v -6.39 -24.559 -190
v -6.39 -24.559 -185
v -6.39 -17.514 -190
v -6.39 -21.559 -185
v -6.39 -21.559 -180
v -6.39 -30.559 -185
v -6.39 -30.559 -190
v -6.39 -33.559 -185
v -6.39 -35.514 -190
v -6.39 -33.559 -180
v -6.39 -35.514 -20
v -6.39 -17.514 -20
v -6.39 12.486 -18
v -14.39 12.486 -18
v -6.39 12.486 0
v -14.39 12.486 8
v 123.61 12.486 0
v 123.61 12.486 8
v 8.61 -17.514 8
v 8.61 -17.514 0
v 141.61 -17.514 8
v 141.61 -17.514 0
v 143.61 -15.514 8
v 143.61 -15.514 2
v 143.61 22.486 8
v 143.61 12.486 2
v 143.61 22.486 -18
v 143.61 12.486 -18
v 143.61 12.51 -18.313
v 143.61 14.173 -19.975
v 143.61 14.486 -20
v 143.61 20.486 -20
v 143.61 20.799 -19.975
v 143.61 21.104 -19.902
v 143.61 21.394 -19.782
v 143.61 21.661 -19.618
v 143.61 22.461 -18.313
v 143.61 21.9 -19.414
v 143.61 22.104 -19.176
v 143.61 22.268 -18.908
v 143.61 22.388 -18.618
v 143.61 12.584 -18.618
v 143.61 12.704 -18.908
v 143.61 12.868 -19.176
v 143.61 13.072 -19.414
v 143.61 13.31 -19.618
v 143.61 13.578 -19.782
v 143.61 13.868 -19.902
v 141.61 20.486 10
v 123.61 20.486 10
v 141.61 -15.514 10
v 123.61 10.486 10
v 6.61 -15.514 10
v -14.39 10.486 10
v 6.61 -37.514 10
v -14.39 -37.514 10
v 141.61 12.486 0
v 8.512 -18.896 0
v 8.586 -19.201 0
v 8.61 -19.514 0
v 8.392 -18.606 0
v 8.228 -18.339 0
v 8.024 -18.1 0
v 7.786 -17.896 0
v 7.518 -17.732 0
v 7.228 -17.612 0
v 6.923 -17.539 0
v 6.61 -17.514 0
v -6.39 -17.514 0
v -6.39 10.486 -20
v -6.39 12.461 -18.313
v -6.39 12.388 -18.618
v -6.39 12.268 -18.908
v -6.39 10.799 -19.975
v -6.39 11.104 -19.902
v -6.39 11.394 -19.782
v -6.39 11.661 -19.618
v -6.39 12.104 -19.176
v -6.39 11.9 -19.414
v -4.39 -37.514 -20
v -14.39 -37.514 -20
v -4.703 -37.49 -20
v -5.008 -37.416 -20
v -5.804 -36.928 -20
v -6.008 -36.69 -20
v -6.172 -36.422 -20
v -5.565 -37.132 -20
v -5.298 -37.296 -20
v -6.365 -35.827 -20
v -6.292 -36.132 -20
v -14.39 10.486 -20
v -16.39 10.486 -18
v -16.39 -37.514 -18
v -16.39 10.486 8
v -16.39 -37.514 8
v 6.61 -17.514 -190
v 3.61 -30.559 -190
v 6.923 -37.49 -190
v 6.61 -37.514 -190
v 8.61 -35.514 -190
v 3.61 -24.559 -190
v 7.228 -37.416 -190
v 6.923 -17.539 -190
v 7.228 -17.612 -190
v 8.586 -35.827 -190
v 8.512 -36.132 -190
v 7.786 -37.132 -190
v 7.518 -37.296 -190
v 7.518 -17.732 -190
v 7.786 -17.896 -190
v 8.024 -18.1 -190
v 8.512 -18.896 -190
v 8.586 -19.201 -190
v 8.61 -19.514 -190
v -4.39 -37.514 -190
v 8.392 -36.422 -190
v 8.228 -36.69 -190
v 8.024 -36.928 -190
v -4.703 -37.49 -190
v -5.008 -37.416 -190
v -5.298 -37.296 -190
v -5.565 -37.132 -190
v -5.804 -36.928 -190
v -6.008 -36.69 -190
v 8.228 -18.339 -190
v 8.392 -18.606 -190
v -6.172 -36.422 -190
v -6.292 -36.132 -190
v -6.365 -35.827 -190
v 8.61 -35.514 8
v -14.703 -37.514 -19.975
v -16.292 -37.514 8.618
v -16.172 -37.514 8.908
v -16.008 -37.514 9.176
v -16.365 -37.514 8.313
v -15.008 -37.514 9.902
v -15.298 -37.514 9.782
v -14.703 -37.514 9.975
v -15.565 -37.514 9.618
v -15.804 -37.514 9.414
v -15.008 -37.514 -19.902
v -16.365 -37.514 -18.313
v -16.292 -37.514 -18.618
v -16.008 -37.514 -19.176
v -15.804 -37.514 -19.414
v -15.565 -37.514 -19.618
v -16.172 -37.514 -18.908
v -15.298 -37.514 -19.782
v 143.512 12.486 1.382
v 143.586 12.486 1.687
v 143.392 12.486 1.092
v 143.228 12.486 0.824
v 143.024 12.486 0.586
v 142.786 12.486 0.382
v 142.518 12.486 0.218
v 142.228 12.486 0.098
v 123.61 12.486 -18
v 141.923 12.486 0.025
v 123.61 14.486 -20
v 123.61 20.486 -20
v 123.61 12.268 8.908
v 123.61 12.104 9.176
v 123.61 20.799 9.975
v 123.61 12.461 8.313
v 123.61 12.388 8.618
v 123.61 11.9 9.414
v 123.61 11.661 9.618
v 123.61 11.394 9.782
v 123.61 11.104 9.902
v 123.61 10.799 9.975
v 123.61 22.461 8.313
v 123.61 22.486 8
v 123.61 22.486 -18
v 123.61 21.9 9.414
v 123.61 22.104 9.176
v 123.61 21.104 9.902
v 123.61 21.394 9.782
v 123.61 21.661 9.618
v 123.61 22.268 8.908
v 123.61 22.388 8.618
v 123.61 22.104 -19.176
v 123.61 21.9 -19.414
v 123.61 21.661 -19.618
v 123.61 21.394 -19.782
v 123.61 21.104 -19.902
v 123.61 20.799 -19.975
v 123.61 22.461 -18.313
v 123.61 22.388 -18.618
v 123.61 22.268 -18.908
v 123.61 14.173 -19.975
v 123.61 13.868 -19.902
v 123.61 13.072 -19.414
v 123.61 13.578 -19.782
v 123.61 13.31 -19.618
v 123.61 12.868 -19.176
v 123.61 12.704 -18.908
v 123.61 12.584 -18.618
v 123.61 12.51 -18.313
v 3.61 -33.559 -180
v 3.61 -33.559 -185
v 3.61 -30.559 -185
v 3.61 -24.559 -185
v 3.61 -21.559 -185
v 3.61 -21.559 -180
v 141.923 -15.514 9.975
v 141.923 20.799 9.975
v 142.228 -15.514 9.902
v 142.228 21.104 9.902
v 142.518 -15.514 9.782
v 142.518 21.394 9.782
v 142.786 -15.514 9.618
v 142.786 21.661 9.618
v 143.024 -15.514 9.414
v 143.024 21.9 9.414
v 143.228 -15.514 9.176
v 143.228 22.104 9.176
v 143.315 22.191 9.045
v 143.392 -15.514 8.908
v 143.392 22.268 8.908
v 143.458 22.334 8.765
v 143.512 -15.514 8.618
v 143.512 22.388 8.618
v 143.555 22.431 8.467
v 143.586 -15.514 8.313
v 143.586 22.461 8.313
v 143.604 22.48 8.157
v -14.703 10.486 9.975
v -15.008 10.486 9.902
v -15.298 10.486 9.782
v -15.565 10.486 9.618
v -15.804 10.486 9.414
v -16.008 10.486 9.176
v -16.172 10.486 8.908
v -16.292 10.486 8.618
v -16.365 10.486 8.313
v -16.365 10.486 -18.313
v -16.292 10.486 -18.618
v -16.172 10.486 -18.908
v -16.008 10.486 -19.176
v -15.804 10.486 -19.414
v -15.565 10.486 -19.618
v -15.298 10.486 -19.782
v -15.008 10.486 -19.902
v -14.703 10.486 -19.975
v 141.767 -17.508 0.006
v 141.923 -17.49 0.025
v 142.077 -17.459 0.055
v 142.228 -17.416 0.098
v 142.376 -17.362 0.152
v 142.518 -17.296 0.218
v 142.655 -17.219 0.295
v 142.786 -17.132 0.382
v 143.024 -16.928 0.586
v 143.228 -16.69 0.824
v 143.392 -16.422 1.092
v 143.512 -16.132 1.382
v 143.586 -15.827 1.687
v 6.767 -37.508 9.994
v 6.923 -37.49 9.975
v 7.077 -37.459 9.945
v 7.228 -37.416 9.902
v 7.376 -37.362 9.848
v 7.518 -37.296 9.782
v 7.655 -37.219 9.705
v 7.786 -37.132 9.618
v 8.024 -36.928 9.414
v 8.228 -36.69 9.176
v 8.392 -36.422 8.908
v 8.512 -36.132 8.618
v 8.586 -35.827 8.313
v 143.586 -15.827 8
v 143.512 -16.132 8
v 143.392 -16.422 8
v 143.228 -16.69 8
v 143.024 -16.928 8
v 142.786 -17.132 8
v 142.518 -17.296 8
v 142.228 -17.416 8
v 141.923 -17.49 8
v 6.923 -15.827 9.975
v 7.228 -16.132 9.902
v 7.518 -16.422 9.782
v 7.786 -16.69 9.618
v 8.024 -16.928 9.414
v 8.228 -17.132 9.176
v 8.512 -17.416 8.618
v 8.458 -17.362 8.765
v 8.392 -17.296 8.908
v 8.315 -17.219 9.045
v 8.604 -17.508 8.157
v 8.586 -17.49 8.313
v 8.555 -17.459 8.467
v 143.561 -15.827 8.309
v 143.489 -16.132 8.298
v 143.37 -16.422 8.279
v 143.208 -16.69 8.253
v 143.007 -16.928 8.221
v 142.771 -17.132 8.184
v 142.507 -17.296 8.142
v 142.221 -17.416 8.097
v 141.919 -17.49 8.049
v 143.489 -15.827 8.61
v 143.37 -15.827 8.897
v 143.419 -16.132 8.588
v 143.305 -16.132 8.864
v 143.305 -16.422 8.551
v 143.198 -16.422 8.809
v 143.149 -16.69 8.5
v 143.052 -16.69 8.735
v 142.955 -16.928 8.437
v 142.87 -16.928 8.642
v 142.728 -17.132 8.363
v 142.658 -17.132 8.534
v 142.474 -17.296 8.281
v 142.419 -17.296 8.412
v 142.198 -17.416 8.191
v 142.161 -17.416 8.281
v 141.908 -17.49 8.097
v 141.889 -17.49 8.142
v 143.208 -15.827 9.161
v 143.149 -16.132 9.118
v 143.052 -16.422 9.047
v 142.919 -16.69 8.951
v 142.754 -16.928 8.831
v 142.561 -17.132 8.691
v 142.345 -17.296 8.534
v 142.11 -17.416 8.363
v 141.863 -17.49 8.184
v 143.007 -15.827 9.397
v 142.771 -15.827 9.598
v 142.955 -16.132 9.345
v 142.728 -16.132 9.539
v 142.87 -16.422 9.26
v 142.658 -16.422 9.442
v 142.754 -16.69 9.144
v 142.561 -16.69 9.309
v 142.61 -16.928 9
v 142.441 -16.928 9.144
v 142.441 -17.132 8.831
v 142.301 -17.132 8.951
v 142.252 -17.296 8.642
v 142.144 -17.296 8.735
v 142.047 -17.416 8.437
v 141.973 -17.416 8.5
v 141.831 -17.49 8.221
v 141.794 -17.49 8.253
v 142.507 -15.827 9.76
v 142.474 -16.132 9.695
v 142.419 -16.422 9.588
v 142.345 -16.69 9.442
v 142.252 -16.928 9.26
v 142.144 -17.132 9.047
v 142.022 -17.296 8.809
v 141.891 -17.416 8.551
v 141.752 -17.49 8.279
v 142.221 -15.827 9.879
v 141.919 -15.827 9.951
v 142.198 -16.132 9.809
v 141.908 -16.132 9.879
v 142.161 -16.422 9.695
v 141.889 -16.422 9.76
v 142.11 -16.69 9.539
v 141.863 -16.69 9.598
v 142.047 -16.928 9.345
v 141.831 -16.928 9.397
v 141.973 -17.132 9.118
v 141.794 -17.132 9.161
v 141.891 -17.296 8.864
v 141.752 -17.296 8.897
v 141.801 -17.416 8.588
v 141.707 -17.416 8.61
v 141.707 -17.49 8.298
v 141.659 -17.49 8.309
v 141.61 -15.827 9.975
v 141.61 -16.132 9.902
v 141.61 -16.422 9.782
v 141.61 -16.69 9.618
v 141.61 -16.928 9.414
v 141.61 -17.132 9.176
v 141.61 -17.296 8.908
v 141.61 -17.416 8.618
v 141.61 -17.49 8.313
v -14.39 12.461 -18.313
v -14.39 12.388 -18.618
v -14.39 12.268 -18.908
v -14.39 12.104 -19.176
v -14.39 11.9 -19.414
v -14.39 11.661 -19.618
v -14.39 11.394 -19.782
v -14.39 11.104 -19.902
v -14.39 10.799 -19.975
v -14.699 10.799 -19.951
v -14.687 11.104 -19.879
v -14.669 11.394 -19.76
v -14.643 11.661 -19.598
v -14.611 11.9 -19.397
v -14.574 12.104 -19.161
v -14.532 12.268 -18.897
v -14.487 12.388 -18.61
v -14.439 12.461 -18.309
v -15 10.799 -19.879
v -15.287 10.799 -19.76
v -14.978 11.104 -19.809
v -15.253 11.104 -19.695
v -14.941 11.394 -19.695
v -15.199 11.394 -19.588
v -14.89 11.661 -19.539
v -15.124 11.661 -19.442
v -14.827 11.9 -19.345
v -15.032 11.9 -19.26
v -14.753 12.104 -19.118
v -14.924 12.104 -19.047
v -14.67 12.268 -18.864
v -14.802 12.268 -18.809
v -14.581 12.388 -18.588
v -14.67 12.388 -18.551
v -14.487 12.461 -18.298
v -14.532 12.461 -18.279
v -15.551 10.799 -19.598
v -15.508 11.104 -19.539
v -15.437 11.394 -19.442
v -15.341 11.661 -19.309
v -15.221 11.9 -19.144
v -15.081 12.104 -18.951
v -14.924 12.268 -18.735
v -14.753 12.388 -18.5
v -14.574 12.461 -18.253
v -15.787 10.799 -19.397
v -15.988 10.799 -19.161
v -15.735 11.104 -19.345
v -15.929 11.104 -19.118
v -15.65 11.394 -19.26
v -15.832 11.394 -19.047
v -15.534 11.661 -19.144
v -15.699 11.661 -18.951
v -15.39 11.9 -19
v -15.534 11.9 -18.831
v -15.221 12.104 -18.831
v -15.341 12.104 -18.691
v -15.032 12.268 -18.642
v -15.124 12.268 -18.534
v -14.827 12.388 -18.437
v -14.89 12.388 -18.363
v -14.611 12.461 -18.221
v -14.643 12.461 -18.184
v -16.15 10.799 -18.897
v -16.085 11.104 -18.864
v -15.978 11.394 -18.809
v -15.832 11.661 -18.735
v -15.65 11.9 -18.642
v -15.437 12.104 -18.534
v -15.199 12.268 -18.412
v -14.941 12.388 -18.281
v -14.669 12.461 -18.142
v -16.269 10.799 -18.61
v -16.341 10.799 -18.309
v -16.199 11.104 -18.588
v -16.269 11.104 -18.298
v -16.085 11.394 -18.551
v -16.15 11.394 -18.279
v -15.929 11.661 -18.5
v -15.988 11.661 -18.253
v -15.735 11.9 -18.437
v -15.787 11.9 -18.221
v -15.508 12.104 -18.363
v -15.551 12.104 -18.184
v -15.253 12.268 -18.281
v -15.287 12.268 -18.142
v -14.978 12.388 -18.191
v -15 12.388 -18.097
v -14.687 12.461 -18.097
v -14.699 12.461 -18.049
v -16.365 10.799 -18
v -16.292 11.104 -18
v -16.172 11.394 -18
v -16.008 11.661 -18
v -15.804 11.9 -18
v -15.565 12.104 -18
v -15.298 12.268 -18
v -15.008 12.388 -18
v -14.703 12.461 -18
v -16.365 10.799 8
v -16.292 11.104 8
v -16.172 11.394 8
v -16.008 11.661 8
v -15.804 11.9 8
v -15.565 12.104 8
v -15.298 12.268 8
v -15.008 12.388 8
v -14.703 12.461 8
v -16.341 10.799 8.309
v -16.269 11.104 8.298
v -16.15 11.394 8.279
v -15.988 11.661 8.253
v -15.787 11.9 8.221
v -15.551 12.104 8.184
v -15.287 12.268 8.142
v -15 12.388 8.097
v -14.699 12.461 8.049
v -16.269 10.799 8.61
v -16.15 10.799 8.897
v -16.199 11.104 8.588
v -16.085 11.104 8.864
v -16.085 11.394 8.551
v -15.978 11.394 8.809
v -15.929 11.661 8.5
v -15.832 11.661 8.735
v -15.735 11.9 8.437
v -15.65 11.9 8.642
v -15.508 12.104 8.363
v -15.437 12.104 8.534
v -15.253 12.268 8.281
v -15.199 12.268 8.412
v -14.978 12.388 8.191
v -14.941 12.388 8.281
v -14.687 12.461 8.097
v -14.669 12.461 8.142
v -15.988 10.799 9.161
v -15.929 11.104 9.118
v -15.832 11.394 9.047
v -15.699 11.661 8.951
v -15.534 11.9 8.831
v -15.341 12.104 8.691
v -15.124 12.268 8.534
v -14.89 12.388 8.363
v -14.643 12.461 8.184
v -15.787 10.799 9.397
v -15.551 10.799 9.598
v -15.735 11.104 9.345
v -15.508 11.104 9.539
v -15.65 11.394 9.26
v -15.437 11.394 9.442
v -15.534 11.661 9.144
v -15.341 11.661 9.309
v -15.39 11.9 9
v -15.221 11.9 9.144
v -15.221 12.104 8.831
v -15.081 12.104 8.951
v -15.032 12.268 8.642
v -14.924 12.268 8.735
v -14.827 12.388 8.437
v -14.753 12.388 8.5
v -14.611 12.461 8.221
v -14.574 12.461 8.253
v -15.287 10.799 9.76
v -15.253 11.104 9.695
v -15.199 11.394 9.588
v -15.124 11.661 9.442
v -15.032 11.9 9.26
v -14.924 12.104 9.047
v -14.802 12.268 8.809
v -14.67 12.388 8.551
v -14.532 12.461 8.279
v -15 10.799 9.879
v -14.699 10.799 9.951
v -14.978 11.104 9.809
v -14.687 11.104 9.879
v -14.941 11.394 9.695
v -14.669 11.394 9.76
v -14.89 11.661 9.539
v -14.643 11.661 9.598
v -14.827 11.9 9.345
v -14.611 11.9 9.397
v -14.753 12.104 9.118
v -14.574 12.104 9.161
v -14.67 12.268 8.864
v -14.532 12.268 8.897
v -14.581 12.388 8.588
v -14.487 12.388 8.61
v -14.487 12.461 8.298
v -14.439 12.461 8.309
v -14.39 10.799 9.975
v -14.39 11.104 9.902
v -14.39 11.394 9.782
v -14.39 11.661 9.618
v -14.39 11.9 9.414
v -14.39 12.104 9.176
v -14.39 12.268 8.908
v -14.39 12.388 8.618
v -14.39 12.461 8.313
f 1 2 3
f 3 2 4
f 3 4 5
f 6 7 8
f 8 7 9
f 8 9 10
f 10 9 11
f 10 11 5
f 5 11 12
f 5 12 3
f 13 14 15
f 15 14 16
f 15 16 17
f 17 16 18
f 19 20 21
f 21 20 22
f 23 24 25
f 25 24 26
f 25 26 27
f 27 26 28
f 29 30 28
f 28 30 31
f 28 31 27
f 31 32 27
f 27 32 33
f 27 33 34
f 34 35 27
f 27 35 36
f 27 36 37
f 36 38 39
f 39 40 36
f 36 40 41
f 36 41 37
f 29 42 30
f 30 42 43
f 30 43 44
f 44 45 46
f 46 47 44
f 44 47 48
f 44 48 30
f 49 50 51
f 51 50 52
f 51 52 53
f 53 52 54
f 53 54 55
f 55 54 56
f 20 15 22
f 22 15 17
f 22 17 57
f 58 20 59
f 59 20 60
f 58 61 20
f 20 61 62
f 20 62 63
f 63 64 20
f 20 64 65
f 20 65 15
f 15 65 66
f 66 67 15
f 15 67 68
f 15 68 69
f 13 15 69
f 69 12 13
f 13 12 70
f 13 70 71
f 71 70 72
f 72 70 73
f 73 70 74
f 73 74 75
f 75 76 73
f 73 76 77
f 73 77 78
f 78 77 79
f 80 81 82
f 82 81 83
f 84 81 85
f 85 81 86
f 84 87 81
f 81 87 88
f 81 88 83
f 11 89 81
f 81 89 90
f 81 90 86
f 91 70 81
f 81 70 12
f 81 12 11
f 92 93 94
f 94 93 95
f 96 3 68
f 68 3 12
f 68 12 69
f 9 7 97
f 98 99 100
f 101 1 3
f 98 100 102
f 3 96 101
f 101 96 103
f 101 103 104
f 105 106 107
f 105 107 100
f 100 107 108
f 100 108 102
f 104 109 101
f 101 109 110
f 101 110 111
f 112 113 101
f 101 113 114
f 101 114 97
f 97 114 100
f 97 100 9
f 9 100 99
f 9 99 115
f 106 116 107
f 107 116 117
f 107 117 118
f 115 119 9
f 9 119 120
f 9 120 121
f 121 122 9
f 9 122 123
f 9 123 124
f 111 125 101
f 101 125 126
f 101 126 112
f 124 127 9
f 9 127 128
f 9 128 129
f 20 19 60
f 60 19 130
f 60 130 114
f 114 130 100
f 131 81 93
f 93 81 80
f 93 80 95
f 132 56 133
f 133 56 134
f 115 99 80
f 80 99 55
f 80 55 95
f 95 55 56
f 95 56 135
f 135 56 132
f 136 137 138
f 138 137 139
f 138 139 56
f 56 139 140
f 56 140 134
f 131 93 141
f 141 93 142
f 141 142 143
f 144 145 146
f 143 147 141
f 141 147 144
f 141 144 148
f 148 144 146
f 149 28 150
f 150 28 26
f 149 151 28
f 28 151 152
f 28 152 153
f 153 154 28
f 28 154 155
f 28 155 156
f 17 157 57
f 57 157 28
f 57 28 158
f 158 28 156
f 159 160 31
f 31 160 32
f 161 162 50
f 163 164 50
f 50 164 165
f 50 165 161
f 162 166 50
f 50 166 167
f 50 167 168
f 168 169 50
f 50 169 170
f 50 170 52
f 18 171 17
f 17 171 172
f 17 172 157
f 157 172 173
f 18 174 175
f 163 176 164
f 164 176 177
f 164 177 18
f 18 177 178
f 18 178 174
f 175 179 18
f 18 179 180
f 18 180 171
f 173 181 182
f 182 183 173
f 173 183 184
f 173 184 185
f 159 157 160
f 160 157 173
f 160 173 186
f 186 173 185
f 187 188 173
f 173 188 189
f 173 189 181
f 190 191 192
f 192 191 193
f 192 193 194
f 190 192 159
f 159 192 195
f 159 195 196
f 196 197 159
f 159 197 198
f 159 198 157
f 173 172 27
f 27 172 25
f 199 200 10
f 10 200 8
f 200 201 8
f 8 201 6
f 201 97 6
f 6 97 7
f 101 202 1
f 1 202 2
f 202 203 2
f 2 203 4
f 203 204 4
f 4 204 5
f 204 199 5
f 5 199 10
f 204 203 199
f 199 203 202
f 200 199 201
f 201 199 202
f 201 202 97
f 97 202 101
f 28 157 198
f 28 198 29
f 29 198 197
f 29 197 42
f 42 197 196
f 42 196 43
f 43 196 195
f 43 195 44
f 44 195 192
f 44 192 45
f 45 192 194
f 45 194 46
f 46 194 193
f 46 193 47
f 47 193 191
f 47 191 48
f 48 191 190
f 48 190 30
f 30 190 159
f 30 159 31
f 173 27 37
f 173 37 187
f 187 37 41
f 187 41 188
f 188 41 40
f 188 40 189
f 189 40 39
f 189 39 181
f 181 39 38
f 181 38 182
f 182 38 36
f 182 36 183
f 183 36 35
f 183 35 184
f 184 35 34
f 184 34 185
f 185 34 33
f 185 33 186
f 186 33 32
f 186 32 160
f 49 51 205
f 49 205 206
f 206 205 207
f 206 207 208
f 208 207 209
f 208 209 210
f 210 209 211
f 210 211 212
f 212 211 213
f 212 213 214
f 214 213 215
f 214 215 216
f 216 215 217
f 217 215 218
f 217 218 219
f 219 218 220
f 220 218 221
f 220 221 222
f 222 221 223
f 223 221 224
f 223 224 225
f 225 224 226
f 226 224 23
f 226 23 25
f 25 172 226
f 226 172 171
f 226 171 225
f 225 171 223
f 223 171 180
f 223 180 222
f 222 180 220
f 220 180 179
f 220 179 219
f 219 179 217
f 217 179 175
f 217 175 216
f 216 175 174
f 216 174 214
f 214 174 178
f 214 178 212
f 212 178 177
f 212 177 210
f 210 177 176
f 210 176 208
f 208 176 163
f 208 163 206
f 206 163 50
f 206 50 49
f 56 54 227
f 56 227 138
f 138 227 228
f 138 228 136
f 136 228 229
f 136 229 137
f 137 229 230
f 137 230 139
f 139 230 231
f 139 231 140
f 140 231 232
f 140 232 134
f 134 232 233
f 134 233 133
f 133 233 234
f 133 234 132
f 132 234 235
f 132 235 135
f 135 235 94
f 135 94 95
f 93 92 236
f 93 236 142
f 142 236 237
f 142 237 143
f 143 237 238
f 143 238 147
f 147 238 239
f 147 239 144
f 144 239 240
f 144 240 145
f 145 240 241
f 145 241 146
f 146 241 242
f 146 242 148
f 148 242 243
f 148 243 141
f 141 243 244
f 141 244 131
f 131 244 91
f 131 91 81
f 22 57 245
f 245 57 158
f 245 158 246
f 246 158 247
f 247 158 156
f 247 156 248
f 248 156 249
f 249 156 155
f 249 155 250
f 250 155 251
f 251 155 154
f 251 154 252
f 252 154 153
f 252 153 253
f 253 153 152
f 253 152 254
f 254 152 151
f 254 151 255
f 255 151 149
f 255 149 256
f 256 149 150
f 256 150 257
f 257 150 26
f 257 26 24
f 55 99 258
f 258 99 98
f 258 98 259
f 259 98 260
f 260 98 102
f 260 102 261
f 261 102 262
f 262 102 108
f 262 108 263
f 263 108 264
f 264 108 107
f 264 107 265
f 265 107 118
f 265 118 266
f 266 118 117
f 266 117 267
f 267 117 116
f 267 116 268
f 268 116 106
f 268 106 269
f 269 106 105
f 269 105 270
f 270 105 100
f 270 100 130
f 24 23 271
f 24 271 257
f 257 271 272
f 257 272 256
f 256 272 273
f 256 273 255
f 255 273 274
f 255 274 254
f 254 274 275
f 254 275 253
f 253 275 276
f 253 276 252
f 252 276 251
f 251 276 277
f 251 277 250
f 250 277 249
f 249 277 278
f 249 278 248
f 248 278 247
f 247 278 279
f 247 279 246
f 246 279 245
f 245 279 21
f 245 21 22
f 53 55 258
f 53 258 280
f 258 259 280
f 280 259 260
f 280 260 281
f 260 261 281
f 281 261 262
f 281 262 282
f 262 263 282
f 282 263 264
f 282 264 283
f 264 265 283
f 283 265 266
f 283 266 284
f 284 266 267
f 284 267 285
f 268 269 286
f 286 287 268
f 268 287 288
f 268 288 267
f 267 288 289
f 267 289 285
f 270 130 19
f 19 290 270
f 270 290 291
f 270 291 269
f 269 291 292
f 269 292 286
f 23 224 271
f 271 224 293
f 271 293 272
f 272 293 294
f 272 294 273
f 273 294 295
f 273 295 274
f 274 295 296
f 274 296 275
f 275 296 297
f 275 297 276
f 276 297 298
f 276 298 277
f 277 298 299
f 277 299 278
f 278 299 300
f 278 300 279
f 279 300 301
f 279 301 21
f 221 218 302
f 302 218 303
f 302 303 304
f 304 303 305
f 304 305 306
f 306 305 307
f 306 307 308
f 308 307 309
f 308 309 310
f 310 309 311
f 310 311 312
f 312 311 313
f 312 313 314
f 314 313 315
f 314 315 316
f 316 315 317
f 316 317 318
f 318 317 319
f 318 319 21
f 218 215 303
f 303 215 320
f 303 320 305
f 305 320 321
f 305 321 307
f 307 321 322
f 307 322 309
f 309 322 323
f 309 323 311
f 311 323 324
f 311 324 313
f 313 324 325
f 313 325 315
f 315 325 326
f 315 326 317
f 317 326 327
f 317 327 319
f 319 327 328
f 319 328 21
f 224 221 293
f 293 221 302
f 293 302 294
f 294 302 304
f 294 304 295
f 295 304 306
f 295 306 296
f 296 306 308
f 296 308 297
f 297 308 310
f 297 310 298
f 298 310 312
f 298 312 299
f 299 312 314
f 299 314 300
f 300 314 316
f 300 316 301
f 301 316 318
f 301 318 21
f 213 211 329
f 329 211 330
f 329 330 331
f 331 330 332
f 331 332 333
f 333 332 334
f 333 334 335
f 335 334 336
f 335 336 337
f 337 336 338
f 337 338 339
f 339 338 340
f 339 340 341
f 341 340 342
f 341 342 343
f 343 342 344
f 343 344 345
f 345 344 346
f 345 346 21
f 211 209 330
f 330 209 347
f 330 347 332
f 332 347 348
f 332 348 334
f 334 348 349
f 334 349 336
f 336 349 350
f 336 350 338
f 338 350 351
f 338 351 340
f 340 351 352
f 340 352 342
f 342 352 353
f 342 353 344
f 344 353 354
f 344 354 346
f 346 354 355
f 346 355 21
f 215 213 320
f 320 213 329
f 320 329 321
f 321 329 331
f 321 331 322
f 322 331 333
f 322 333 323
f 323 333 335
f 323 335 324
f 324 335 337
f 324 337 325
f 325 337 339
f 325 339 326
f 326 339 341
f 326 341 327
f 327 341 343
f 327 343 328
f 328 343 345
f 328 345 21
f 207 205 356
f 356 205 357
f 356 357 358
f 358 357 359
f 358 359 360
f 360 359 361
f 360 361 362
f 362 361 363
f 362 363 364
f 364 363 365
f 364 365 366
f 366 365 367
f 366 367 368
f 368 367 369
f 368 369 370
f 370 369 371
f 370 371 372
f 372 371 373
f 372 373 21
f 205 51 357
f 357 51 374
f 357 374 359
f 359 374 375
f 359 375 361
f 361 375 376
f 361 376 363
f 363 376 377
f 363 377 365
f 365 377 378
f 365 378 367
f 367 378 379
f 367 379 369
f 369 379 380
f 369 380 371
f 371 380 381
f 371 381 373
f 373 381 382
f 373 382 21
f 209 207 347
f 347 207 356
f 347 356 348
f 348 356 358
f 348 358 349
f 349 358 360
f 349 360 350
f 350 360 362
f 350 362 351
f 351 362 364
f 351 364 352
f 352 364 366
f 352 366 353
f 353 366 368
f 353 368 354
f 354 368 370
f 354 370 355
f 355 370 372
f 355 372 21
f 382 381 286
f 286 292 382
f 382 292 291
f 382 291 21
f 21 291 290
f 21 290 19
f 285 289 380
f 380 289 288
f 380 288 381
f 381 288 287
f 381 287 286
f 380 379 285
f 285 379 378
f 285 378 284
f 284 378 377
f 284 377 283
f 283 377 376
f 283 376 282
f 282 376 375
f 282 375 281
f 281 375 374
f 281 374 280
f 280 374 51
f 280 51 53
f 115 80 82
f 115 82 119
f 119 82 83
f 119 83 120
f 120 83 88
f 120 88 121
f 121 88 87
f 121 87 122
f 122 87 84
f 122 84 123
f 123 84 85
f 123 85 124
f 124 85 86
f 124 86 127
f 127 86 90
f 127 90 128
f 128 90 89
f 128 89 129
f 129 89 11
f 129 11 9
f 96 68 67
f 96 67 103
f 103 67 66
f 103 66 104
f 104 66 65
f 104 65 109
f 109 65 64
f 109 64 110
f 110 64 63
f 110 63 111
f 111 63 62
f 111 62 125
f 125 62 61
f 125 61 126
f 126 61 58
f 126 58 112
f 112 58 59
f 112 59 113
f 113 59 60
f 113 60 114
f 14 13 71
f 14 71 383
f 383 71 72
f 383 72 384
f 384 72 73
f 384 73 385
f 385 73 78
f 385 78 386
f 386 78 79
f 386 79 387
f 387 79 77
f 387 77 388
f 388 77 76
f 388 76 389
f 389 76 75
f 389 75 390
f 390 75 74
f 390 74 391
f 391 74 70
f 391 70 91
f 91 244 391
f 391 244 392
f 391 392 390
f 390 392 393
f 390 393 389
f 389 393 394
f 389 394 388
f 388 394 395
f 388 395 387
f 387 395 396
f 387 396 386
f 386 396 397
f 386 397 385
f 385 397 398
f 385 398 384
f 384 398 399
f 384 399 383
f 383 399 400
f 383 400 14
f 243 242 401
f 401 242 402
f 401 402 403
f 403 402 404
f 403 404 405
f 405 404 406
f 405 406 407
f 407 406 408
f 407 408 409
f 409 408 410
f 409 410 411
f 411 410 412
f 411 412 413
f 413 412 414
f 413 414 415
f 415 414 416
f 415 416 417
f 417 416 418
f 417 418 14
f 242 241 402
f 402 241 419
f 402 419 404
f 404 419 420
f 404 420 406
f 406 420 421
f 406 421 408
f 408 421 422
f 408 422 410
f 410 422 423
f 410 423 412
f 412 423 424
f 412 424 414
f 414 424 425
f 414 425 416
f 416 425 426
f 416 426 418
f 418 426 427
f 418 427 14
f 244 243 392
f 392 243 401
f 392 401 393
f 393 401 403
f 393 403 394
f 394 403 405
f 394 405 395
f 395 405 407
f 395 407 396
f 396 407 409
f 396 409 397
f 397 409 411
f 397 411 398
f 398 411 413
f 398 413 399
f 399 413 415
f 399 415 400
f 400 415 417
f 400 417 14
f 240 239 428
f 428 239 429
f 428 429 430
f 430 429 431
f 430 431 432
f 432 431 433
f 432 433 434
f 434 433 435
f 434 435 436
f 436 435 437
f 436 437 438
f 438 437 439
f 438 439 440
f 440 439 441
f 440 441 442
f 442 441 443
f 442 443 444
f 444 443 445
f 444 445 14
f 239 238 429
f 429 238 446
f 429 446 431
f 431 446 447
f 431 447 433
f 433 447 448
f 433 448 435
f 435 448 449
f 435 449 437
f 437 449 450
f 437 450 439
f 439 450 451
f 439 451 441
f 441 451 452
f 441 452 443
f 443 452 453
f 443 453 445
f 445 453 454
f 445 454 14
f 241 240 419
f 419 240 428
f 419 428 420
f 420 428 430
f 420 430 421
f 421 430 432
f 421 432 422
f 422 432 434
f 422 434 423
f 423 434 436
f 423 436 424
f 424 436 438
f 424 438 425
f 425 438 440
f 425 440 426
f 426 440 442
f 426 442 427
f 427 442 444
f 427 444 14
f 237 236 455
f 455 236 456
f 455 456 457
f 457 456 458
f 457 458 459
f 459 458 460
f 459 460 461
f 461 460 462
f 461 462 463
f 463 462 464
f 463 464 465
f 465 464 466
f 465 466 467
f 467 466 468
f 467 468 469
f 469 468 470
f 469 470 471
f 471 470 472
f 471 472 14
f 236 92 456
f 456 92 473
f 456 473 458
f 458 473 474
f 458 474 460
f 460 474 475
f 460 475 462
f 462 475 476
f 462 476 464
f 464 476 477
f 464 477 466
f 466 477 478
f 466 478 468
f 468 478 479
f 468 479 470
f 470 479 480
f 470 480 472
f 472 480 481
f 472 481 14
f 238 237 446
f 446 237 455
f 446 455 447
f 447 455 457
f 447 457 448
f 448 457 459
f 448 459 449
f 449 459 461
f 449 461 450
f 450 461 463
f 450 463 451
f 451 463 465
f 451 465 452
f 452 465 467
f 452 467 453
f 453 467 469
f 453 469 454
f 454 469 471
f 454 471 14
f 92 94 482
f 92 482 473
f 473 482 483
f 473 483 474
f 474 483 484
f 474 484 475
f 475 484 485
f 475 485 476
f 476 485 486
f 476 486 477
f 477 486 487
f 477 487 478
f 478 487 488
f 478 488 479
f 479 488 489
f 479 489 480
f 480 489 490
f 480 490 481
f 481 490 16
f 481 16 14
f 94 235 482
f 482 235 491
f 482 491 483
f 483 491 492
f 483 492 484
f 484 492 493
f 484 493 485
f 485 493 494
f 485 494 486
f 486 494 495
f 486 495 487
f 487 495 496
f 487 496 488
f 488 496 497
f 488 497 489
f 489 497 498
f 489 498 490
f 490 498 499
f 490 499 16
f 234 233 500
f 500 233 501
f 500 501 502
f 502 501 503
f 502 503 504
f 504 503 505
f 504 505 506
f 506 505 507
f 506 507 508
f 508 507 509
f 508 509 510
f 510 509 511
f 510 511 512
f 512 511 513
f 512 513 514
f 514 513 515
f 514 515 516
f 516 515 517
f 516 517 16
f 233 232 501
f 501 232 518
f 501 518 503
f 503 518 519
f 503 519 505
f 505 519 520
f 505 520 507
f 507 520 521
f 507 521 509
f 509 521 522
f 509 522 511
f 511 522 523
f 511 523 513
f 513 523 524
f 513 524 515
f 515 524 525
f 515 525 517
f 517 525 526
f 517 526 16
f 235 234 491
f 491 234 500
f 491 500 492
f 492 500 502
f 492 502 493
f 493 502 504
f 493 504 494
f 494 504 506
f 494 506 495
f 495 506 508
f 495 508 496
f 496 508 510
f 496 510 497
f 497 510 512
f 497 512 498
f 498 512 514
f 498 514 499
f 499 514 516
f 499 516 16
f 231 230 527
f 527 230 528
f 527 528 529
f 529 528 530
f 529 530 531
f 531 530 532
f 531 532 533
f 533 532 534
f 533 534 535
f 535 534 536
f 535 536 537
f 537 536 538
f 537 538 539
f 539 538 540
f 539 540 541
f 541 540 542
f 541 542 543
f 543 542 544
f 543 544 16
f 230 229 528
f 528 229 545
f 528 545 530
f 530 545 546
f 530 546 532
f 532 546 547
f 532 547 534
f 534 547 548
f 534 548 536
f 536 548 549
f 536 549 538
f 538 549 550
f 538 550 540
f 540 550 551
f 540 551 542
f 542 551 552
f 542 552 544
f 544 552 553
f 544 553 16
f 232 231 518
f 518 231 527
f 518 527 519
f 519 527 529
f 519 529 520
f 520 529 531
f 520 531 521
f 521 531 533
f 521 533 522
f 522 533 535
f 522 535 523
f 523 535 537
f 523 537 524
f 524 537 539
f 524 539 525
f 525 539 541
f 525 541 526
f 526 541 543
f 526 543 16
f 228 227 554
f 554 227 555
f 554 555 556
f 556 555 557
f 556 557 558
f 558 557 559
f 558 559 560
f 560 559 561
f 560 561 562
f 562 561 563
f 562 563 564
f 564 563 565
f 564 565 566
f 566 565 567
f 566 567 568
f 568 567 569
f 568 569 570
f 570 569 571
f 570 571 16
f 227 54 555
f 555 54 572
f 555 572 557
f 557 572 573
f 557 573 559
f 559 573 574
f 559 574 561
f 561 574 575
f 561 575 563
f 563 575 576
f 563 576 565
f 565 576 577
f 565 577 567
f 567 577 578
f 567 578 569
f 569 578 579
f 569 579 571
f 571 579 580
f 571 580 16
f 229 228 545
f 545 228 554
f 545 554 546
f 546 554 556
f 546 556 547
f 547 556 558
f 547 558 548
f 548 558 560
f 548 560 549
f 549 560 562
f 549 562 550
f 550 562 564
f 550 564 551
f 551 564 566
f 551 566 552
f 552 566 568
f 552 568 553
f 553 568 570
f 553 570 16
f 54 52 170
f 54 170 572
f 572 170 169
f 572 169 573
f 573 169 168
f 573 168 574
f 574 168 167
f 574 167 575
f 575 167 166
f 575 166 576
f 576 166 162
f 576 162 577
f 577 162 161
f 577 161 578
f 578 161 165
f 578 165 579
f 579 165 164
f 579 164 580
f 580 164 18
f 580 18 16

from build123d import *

# Parameters (mm, degrees)
LONG_LEG_W             = 30
LONG_LEG_H             = 150
LONG_LEG_EXTRUDE_DEPTH = 10
SKETCH2_W              = 30
SKETCH2_H              = 30
BOSS_EXTRUDE2_DEPTH    = 10
SKETCH6_W              = 15
SKETCH6_H              = 10
LONG_LEG_DOWN_DEPTH    = 20
SKETCH12_W             = 20
SKETCH12_H             = 30
BOSS_EXTRUDE8_DEPTH    = 10
SKETCH13_W             = 6
SKETCH13_H             = 5
CUT_EXTRUDE2_DEPTH     = 10
FILLET1_R              = 2
FILLET2_R              = 2
FILLET3_R              = 2
FILLET4_R              = 2


with BuildPart() as part:
    # long-leg → long_leg_extrude (new body)
    with BuildSketch(Plane(origin=(0, 0, 0), x_dir=(0, 1, 0), z_dir=(0, 0, 1))):
        with Locations((-2.514124294, -68.610169492)):
            Rectangle(LONG_LEG_W, LONG_LEG_H)
    extrude(amount=LONG_LEG_EXTRUDE_DEPTH)

    # Sketch2 → Boss-Extrude2 (add)
    with BuildSketch(Plane(origin=(-6.389830508, 0, 0), x_dir=(0, -1, 0), z_dir=(-1, 0, 0))):
        with Locations((2.514124294, -5)):
            Rectangle(SKETCH2_W, SKETCH2_H)
    extrude(amount=BOSS_EXTRUDE2_DEPTH)

    # Sketch6 → long leg down (add)
    with BuildSketch(Plane.XZ.offset(17.514124294)):
        Polygon((-6.389830508, 0), (-6.389830508, 10), (-16.389830508, 10), (-16.389830508, -20), (-6.389830508, -20), align=None)
        Polygon((8.610169492, 0), (-6.389830508, 0), (-6.389830508, -20), (-6.389830508, -190), (8.610169492, -190), align=None)
        with Locations((1.110169492, 5)):
            Rectangle(SKETCH6_W, SKETCH6_H)
    extrude(amount=LONG_LEG_DOWN_DEPTH)

    # Sketch12 → Boss-Extrude8 (add)
    with BuildSketch(Plane(origin=(0, 12.485875706, 0), x_dir=(-1, 0, 0), z_dir=(0, 1, 0))):
        with Locations((-133.610169492, -5)):
            Rectangle(SKETCH12_W, SKETCH12_H)
    extrude(amount=BOSS_EXTRUDE8_DEPTH)

    # Sketch13 → Cut-Extrude2 (cut)
    with BuildSketch(Plane(origin=(-6.389830508, 0, 0), x_dir=(0, -1, 0), z_dir=(-1, 0, 0))):
        Polygon((24.559120017, -185), (30.559120017, -185), (33.559120017, -185), (33.559120017, -180), (21.559120017, -180), (21.559120017, -185), align=None)
        with Locations((27.559120017, -187.5)):
            Rectangle(SKETCH13_W, SKETCH13_H)
    extrude(amount=-CUT_EXTRUDE2_DEPTH, mode=Mode.SUBTRACT)

    # Fillet1
    fillet1_edges = [part.edges().sort_by_distance(p)[0] for p in [
        (133.610169492, 12.485875706, -20),
        (133.610169492, 22.485875706, -20),
        (133.610169492, 22.485875706, 10),
        (143.610169492, 2.485875706, 10),
        (-16.389830508, -12.514124294, 10),
        (-16.389830508, -12.514124294, -20),
    ]]
    fillet(fillet1_edges, radius=FILLET1_R)

    # Fillet2
    fillet2_edges = [part.edges().sort_by_distance(p)[0] for p in [
        (143.610169492, -17.514124294, 4),
        (143.024383054, -17.514124294, 9.414213562),
        (75.110169492, -17.514124294, 10),
        (8.610169492, -37.514124294, -90),
        (8.610169492, -27.514124294, 10),
        (-6.389830508, -37.514124294, -105),
        (143.610169492, -2.514124294, 0),
    ]]
    fillet(fillet2_edges, radius=FILLET2_R)

    # Fillet3
    fillet3_edges = [part.edges().sort_by_distance(p)[0] for p in [
        (8.610169492, -17.514124294, -95),
    ]]
    fillet(fillet3_edges, radius=FILLET3_R)

    # Fillet4
    fillet4_edges = [part.edges().sort_by_distance(p)[0] for p in [
        (-16.389830508, 12.485875706, -5),
        (-10.389830508, 12.485875706, -20),
        (-15.804044071, 12.485875706, -19.414213562),
        (-15.804044071, 12.485875706, 9.414213562),
        (54.610169492, 12.485875706, 10),
    ]]
    fillet(fillet4_edges, radius=FILLET4_R)


solid = part.part
